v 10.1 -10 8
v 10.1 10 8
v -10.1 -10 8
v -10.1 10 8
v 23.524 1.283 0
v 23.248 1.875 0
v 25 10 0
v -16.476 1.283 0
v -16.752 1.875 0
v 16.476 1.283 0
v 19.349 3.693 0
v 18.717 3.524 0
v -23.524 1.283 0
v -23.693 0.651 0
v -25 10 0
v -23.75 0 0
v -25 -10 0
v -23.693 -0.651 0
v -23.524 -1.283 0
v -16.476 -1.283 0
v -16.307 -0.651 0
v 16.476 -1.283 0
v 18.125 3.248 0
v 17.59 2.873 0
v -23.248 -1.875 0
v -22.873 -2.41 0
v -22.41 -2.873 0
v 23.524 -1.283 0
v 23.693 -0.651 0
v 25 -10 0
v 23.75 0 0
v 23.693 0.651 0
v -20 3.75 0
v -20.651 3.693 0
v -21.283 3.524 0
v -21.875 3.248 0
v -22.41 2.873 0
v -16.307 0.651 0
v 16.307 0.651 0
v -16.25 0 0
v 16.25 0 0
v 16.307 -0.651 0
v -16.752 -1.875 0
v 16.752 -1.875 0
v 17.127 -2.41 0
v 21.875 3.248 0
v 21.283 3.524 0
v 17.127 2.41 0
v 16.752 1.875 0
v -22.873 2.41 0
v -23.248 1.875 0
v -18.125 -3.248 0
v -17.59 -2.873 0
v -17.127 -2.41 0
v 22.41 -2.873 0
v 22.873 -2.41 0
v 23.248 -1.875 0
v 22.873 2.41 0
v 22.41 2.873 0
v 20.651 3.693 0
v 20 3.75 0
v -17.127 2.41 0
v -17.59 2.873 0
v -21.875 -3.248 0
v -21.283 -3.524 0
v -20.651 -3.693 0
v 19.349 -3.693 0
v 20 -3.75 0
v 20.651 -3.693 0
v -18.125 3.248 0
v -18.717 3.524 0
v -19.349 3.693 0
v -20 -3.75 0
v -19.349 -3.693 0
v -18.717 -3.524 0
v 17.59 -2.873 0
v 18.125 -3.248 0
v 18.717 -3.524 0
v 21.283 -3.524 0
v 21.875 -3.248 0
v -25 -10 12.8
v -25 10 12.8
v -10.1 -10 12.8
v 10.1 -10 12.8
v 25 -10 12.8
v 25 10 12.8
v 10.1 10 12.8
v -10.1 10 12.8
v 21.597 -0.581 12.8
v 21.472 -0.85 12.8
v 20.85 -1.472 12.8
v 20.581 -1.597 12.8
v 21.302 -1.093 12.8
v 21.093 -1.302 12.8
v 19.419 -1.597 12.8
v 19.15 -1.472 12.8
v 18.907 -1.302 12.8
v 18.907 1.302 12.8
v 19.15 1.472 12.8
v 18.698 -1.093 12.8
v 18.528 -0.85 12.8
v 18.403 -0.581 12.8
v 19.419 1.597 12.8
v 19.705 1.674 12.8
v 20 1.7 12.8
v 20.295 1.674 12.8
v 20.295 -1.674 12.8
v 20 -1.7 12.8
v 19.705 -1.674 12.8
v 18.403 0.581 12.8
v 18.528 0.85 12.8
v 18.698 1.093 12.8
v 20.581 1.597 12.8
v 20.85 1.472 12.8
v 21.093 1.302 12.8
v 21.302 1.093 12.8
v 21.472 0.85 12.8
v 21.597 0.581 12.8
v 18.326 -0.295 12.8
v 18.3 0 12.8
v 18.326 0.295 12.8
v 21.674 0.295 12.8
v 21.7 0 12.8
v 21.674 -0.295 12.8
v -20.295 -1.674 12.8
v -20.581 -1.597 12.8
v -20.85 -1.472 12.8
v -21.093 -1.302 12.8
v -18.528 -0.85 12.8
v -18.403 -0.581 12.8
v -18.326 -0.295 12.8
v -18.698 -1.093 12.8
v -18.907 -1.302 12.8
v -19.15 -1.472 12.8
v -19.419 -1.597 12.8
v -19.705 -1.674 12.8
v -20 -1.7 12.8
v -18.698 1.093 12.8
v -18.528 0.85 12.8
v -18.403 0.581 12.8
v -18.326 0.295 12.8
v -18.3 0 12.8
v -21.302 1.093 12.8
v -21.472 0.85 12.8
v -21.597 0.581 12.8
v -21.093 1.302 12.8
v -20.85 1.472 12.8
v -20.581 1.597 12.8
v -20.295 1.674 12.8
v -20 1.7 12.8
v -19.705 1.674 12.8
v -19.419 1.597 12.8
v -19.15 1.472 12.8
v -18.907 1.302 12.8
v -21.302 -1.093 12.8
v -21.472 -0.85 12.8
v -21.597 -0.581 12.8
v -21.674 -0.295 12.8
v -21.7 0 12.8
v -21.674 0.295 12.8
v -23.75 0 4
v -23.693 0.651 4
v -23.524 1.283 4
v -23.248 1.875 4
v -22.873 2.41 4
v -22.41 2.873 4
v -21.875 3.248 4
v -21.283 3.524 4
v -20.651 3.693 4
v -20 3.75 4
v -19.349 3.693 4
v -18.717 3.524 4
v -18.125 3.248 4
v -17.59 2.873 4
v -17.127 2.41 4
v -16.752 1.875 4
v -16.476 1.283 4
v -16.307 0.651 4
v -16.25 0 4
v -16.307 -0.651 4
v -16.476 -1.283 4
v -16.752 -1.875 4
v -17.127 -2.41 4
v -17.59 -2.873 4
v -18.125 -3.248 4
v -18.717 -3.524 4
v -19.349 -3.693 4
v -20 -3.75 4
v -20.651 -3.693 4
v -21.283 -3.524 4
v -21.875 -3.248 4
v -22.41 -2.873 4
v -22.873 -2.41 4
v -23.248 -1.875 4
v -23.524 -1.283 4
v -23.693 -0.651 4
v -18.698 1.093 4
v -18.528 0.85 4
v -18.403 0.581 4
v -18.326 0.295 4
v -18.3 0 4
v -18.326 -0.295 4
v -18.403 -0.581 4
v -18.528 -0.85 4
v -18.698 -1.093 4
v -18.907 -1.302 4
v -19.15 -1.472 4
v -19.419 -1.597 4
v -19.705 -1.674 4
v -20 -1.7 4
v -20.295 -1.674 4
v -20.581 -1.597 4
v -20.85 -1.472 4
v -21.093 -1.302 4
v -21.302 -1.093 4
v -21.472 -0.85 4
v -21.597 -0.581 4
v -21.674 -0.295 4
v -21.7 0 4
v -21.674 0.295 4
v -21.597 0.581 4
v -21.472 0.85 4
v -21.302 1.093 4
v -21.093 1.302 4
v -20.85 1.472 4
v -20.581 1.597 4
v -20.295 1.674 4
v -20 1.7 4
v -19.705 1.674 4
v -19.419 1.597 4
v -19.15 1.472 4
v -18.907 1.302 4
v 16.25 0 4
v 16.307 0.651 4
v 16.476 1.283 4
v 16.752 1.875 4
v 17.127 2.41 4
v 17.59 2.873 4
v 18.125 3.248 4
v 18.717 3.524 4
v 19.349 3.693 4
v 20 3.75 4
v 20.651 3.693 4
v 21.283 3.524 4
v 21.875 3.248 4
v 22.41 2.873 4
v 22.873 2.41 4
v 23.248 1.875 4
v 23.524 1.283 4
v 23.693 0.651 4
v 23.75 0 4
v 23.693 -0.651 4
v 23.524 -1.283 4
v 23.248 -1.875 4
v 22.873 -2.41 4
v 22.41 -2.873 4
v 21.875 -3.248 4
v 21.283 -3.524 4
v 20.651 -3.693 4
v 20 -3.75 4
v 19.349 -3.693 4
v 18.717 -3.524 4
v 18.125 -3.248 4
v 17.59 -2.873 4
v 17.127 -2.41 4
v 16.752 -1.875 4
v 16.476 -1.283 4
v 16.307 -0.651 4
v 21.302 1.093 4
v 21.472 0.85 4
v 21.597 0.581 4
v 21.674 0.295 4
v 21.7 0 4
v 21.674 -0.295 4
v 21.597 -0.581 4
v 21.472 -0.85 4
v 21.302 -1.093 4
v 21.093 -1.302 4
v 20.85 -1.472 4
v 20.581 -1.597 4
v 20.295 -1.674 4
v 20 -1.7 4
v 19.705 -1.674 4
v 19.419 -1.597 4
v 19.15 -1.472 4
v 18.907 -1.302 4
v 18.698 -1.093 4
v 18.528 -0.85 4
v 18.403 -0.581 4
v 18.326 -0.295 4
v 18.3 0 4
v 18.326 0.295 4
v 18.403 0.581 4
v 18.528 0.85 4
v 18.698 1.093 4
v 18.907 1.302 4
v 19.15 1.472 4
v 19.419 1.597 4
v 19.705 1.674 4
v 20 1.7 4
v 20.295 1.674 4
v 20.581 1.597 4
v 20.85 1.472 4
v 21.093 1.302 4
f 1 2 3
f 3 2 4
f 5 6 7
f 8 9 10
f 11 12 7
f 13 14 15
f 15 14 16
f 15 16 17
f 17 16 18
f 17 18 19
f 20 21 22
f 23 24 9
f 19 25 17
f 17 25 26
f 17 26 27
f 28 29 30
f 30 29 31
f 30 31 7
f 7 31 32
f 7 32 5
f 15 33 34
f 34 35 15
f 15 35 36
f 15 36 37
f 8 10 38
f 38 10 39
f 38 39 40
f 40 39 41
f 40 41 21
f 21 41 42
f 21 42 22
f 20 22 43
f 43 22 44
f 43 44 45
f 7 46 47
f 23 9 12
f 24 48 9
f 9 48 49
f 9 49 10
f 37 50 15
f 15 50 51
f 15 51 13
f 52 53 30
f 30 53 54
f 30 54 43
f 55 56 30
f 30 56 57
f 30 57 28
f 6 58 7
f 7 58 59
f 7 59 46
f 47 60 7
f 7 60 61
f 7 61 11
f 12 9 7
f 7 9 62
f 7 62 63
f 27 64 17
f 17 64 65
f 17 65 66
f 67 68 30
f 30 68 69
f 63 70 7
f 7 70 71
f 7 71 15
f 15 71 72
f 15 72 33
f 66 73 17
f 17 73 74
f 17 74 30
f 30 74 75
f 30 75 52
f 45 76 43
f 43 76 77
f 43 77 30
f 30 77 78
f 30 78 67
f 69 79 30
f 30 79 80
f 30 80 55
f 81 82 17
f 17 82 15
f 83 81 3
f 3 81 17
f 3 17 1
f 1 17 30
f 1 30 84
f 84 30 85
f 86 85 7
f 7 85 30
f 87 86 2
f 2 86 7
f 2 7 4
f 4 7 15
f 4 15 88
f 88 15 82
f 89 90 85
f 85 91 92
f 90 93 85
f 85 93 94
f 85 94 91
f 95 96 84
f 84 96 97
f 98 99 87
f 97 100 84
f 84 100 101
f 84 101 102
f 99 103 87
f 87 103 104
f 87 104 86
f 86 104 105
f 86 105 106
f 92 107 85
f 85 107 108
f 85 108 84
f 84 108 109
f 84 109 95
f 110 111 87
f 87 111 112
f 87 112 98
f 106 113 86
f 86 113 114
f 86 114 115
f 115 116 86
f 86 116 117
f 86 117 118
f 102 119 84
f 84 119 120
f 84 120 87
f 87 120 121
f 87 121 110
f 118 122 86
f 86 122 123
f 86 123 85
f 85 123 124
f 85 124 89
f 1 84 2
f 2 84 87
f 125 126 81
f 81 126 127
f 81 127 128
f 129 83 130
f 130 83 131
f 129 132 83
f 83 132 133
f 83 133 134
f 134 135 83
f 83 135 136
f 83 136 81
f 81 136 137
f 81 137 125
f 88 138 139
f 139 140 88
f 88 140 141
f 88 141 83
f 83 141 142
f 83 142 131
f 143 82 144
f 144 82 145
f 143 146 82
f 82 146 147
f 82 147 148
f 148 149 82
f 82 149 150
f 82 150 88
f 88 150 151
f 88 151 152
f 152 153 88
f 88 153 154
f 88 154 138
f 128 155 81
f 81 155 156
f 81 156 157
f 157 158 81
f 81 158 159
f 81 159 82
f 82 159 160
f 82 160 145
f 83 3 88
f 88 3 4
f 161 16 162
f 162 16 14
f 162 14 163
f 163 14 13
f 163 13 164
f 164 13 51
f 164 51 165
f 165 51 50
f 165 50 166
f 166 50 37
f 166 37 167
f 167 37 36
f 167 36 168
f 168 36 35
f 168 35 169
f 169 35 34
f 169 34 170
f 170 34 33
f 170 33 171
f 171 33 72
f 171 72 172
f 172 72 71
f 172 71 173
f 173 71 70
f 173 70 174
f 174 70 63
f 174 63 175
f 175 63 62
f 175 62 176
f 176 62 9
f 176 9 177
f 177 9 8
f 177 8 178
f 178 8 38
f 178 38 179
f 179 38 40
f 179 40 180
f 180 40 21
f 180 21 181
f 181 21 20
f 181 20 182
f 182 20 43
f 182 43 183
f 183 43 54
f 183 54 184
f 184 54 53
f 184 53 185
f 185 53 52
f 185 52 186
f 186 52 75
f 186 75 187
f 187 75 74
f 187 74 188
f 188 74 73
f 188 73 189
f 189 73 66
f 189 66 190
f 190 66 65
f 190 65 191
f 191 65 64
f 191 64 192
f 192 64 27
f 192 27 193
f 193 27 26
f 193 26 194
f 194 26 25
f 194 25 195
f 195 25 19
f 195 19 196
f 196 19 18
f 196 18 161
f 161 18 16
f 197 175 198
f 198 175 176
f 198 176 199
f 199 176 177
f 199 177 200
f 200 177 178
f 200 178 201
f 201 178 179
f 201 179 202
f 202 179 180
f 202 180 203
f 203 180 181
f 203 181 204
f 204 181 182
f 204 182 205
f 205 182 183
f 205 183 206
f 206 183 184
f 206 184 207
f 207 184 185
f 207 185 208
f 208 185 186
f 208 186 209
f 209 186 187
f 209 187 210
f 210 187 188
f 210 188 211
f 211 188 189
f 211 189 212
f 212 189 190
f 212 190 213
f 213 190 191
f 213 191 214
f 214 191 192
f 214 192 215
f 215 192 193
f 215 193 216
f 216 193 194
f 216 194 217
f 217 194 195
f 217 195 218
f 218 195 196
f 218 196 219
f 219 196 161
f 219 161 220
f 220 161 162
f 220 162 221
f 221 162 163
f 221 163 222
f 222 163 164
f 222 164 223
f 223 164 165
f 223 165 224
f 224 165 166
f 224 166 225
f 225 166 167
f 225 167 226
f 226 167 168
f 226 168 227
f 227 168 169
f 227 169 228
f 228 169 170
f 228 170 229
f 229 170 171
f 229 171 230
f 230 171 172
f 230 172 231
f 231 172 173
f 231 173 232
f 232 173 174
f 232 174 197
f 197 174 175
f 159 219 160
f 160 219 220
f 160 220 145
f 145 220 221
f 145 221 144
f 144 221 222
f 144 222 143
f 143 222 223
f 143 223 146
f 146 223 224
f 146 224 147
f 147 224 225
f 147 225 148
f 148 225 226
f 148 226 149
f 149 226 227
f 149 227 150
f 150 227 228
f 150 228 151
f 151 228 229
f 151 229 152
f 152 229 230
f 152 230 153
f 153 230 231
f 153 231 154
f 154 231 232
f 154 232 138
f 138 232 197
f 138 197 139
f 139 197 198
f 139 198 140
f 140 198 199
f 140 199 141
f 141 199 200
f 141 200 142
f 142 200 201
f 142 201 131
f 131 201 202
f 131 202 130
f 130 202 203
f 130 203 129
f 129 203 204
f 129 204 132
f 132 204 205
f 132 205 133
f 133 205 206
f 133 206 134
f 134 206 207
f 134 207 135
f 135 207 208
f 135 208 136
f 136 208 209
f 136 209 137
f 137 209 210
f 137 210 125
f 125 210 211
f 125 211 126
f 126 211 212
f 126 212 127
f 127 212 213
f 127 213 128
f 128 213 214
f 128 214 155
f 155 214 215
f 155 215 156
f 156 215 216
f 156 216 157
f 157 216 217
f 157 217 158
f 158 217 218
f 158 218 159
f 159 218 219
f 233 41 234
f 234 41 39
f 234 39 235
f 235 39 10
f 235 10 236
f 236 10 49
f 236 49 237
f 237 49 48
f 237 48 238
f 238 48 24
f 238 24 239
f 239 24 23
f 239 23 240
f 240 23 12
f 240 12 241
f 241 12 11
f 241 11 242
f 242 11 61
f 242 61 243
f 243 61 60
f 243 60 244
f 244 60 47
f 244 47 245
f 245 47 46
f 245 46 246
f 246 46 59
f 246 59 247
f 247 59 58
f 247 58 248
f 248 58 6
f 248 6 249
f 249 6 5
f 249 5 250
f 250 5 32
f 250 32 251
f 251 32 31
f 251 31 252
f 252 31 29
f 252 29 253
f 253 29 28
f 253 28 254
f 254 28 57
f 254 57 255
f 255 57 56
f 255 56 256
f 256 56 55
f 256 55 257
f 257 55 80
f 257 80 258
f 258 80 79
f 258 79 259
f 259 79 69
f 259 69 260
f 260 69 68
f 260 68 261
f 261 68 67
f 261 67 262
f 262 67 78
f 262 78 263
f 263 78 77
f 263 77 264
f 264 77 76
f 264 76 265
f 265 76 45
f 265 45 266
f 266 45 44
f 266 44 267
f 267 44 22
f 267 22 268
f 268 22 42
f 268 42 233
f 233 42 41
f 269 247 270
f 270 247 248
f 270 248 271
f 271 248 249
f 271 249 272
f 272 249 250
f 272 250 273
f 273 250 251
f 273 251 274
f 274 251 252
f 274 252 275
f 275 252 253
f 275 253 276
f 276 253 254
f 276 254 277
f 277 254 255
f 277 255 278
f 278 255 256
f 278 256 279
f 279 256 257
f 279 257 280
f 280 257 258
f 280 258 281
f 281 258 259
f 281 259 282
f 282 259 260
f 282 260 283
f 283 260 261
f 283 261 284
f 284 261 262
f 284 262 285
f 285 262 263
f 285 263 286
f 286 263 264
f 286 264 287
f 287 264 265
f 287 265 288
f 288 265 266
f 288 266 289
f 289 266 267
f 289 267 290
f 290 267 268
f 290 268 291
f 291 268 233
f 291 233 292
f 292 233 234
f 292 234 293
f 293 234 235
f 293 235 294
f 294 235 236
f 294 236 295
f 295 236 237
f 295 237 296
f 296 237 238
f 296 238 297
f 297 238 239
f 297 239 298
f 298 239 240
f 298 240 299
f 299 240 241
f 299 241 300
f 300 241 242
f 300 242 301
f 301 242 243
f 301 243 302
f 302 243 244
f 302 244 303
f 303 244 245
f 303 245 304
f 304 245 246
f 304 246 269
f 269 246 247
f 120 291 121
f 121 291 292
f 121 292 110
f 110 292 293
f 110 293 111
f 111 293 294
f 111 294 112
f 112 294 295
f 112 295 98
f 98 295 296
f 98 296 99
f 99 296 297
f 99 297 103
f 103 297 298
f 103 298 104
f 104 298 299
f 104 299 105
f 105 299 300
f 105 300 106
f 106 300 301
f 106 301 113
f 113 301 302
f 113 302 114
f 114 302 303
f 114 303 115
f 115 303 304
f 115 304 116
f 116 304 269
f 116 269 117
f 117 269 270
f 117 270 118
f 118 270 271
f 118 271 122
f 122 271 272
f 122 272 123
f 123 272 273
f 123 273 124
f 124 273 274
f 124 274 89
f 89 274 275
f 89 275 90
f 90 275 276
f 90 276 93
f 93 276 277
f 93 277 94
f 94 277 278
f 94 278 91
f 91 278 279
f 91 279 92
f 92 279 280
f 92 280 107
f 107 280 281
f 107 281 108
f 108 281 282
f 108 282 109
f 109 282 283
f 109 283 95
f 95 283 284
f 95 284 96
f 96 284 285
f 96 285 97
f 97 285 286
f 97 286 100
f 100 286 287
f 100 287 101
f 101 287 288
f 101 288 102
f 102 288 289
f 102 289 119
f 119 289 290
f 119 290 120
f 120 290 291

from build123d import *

# Parameters (mm, degrees)
SKETCH2_W           = 50
SKETCH2_H           = 20
SKETCH2_R           = 1.7
BOSS_EXTRUDE1_DEPTH = 8
BOSS_EXTRUDE2_DEPTH = 20
SKETCH6_R           = 3.75
CUT_EXTRUDE1_DEPTH  = 4
SKETCH7_R           = 1.7
CUT_EXTRUDE2_DEPTH  = 13.8


with BuildPart() as part:
    # Sketch2 → Boss-Extrude1 (new body)
    with BuildSketch(Plane.XY):
        Rectangle(SKETCH2_W, SKETCH2_H)
        with Locations((-20, 0)):
            Circle(SKETCH2_R, mode=Mode.SUBTRACT)
        with Locations((20, 0)):
            Circle(SKETCH2_R, mode=Mode.SUBTRACT)
    extrude(amount=BOSS_EXTRUDE1_DEPTH)

    # Sketch5 → Boss-Extrude2 (add)
    with BuildSketch(Plane.XZ.offset(10)):
        with BuildLine():
            Line((-25, 8), (-25, 12.8))
            Line((-25, 12.8), (-10.1, 12.8))
            Line((-10.1, 12.8), (-10.1, 8))
            Line((-10.1, 8), (10.1, 8))
            Line((10.1, 8), (10.1, 12.8))
            Line((10.1, 12.8), (25, 12.8))
            Line((25, 12.8), (25, 8))
            ThreePointArc((25, 8), (0, 0), (-25, 8))
        make_face()
    extrude(amount=-BOSS_EXTRUDE2_DEPTH)

    # Sketch6 → Cut-Extrude1 (cut)
    with BuildSketch(Plane(origin=(0, 0, 0), x_dir=(-1, 0, 0), z_dir=(0, 0, -1))):
        with Locations((20, 0)):
            Circle(SKETCH6_R)
        with Locations((-20, 0)):
            Circle(SKETCH6_R)
    extrude(amount=-CUT_EXTRUDE1_DEPTH, mode=Mode.SUBTRACT)

    # Sketch7 → Cut-Extrude2 (cut, through all)
    with BuildSketch(Plane(origin=(0, 0, 0), x_dir=(-1, 0, 0), z_dir=(0, 0, -1))):
        with Locations((20, 0)):
            Circle(SKETCH7_R)
        with Locations((-20, 0)):
            Circle(SKETCH7_R)
    extrude(amount=-CUT_EXTRUDE2_DEPTH, mode=Mode.SUBTRACT)


solid = part.part
